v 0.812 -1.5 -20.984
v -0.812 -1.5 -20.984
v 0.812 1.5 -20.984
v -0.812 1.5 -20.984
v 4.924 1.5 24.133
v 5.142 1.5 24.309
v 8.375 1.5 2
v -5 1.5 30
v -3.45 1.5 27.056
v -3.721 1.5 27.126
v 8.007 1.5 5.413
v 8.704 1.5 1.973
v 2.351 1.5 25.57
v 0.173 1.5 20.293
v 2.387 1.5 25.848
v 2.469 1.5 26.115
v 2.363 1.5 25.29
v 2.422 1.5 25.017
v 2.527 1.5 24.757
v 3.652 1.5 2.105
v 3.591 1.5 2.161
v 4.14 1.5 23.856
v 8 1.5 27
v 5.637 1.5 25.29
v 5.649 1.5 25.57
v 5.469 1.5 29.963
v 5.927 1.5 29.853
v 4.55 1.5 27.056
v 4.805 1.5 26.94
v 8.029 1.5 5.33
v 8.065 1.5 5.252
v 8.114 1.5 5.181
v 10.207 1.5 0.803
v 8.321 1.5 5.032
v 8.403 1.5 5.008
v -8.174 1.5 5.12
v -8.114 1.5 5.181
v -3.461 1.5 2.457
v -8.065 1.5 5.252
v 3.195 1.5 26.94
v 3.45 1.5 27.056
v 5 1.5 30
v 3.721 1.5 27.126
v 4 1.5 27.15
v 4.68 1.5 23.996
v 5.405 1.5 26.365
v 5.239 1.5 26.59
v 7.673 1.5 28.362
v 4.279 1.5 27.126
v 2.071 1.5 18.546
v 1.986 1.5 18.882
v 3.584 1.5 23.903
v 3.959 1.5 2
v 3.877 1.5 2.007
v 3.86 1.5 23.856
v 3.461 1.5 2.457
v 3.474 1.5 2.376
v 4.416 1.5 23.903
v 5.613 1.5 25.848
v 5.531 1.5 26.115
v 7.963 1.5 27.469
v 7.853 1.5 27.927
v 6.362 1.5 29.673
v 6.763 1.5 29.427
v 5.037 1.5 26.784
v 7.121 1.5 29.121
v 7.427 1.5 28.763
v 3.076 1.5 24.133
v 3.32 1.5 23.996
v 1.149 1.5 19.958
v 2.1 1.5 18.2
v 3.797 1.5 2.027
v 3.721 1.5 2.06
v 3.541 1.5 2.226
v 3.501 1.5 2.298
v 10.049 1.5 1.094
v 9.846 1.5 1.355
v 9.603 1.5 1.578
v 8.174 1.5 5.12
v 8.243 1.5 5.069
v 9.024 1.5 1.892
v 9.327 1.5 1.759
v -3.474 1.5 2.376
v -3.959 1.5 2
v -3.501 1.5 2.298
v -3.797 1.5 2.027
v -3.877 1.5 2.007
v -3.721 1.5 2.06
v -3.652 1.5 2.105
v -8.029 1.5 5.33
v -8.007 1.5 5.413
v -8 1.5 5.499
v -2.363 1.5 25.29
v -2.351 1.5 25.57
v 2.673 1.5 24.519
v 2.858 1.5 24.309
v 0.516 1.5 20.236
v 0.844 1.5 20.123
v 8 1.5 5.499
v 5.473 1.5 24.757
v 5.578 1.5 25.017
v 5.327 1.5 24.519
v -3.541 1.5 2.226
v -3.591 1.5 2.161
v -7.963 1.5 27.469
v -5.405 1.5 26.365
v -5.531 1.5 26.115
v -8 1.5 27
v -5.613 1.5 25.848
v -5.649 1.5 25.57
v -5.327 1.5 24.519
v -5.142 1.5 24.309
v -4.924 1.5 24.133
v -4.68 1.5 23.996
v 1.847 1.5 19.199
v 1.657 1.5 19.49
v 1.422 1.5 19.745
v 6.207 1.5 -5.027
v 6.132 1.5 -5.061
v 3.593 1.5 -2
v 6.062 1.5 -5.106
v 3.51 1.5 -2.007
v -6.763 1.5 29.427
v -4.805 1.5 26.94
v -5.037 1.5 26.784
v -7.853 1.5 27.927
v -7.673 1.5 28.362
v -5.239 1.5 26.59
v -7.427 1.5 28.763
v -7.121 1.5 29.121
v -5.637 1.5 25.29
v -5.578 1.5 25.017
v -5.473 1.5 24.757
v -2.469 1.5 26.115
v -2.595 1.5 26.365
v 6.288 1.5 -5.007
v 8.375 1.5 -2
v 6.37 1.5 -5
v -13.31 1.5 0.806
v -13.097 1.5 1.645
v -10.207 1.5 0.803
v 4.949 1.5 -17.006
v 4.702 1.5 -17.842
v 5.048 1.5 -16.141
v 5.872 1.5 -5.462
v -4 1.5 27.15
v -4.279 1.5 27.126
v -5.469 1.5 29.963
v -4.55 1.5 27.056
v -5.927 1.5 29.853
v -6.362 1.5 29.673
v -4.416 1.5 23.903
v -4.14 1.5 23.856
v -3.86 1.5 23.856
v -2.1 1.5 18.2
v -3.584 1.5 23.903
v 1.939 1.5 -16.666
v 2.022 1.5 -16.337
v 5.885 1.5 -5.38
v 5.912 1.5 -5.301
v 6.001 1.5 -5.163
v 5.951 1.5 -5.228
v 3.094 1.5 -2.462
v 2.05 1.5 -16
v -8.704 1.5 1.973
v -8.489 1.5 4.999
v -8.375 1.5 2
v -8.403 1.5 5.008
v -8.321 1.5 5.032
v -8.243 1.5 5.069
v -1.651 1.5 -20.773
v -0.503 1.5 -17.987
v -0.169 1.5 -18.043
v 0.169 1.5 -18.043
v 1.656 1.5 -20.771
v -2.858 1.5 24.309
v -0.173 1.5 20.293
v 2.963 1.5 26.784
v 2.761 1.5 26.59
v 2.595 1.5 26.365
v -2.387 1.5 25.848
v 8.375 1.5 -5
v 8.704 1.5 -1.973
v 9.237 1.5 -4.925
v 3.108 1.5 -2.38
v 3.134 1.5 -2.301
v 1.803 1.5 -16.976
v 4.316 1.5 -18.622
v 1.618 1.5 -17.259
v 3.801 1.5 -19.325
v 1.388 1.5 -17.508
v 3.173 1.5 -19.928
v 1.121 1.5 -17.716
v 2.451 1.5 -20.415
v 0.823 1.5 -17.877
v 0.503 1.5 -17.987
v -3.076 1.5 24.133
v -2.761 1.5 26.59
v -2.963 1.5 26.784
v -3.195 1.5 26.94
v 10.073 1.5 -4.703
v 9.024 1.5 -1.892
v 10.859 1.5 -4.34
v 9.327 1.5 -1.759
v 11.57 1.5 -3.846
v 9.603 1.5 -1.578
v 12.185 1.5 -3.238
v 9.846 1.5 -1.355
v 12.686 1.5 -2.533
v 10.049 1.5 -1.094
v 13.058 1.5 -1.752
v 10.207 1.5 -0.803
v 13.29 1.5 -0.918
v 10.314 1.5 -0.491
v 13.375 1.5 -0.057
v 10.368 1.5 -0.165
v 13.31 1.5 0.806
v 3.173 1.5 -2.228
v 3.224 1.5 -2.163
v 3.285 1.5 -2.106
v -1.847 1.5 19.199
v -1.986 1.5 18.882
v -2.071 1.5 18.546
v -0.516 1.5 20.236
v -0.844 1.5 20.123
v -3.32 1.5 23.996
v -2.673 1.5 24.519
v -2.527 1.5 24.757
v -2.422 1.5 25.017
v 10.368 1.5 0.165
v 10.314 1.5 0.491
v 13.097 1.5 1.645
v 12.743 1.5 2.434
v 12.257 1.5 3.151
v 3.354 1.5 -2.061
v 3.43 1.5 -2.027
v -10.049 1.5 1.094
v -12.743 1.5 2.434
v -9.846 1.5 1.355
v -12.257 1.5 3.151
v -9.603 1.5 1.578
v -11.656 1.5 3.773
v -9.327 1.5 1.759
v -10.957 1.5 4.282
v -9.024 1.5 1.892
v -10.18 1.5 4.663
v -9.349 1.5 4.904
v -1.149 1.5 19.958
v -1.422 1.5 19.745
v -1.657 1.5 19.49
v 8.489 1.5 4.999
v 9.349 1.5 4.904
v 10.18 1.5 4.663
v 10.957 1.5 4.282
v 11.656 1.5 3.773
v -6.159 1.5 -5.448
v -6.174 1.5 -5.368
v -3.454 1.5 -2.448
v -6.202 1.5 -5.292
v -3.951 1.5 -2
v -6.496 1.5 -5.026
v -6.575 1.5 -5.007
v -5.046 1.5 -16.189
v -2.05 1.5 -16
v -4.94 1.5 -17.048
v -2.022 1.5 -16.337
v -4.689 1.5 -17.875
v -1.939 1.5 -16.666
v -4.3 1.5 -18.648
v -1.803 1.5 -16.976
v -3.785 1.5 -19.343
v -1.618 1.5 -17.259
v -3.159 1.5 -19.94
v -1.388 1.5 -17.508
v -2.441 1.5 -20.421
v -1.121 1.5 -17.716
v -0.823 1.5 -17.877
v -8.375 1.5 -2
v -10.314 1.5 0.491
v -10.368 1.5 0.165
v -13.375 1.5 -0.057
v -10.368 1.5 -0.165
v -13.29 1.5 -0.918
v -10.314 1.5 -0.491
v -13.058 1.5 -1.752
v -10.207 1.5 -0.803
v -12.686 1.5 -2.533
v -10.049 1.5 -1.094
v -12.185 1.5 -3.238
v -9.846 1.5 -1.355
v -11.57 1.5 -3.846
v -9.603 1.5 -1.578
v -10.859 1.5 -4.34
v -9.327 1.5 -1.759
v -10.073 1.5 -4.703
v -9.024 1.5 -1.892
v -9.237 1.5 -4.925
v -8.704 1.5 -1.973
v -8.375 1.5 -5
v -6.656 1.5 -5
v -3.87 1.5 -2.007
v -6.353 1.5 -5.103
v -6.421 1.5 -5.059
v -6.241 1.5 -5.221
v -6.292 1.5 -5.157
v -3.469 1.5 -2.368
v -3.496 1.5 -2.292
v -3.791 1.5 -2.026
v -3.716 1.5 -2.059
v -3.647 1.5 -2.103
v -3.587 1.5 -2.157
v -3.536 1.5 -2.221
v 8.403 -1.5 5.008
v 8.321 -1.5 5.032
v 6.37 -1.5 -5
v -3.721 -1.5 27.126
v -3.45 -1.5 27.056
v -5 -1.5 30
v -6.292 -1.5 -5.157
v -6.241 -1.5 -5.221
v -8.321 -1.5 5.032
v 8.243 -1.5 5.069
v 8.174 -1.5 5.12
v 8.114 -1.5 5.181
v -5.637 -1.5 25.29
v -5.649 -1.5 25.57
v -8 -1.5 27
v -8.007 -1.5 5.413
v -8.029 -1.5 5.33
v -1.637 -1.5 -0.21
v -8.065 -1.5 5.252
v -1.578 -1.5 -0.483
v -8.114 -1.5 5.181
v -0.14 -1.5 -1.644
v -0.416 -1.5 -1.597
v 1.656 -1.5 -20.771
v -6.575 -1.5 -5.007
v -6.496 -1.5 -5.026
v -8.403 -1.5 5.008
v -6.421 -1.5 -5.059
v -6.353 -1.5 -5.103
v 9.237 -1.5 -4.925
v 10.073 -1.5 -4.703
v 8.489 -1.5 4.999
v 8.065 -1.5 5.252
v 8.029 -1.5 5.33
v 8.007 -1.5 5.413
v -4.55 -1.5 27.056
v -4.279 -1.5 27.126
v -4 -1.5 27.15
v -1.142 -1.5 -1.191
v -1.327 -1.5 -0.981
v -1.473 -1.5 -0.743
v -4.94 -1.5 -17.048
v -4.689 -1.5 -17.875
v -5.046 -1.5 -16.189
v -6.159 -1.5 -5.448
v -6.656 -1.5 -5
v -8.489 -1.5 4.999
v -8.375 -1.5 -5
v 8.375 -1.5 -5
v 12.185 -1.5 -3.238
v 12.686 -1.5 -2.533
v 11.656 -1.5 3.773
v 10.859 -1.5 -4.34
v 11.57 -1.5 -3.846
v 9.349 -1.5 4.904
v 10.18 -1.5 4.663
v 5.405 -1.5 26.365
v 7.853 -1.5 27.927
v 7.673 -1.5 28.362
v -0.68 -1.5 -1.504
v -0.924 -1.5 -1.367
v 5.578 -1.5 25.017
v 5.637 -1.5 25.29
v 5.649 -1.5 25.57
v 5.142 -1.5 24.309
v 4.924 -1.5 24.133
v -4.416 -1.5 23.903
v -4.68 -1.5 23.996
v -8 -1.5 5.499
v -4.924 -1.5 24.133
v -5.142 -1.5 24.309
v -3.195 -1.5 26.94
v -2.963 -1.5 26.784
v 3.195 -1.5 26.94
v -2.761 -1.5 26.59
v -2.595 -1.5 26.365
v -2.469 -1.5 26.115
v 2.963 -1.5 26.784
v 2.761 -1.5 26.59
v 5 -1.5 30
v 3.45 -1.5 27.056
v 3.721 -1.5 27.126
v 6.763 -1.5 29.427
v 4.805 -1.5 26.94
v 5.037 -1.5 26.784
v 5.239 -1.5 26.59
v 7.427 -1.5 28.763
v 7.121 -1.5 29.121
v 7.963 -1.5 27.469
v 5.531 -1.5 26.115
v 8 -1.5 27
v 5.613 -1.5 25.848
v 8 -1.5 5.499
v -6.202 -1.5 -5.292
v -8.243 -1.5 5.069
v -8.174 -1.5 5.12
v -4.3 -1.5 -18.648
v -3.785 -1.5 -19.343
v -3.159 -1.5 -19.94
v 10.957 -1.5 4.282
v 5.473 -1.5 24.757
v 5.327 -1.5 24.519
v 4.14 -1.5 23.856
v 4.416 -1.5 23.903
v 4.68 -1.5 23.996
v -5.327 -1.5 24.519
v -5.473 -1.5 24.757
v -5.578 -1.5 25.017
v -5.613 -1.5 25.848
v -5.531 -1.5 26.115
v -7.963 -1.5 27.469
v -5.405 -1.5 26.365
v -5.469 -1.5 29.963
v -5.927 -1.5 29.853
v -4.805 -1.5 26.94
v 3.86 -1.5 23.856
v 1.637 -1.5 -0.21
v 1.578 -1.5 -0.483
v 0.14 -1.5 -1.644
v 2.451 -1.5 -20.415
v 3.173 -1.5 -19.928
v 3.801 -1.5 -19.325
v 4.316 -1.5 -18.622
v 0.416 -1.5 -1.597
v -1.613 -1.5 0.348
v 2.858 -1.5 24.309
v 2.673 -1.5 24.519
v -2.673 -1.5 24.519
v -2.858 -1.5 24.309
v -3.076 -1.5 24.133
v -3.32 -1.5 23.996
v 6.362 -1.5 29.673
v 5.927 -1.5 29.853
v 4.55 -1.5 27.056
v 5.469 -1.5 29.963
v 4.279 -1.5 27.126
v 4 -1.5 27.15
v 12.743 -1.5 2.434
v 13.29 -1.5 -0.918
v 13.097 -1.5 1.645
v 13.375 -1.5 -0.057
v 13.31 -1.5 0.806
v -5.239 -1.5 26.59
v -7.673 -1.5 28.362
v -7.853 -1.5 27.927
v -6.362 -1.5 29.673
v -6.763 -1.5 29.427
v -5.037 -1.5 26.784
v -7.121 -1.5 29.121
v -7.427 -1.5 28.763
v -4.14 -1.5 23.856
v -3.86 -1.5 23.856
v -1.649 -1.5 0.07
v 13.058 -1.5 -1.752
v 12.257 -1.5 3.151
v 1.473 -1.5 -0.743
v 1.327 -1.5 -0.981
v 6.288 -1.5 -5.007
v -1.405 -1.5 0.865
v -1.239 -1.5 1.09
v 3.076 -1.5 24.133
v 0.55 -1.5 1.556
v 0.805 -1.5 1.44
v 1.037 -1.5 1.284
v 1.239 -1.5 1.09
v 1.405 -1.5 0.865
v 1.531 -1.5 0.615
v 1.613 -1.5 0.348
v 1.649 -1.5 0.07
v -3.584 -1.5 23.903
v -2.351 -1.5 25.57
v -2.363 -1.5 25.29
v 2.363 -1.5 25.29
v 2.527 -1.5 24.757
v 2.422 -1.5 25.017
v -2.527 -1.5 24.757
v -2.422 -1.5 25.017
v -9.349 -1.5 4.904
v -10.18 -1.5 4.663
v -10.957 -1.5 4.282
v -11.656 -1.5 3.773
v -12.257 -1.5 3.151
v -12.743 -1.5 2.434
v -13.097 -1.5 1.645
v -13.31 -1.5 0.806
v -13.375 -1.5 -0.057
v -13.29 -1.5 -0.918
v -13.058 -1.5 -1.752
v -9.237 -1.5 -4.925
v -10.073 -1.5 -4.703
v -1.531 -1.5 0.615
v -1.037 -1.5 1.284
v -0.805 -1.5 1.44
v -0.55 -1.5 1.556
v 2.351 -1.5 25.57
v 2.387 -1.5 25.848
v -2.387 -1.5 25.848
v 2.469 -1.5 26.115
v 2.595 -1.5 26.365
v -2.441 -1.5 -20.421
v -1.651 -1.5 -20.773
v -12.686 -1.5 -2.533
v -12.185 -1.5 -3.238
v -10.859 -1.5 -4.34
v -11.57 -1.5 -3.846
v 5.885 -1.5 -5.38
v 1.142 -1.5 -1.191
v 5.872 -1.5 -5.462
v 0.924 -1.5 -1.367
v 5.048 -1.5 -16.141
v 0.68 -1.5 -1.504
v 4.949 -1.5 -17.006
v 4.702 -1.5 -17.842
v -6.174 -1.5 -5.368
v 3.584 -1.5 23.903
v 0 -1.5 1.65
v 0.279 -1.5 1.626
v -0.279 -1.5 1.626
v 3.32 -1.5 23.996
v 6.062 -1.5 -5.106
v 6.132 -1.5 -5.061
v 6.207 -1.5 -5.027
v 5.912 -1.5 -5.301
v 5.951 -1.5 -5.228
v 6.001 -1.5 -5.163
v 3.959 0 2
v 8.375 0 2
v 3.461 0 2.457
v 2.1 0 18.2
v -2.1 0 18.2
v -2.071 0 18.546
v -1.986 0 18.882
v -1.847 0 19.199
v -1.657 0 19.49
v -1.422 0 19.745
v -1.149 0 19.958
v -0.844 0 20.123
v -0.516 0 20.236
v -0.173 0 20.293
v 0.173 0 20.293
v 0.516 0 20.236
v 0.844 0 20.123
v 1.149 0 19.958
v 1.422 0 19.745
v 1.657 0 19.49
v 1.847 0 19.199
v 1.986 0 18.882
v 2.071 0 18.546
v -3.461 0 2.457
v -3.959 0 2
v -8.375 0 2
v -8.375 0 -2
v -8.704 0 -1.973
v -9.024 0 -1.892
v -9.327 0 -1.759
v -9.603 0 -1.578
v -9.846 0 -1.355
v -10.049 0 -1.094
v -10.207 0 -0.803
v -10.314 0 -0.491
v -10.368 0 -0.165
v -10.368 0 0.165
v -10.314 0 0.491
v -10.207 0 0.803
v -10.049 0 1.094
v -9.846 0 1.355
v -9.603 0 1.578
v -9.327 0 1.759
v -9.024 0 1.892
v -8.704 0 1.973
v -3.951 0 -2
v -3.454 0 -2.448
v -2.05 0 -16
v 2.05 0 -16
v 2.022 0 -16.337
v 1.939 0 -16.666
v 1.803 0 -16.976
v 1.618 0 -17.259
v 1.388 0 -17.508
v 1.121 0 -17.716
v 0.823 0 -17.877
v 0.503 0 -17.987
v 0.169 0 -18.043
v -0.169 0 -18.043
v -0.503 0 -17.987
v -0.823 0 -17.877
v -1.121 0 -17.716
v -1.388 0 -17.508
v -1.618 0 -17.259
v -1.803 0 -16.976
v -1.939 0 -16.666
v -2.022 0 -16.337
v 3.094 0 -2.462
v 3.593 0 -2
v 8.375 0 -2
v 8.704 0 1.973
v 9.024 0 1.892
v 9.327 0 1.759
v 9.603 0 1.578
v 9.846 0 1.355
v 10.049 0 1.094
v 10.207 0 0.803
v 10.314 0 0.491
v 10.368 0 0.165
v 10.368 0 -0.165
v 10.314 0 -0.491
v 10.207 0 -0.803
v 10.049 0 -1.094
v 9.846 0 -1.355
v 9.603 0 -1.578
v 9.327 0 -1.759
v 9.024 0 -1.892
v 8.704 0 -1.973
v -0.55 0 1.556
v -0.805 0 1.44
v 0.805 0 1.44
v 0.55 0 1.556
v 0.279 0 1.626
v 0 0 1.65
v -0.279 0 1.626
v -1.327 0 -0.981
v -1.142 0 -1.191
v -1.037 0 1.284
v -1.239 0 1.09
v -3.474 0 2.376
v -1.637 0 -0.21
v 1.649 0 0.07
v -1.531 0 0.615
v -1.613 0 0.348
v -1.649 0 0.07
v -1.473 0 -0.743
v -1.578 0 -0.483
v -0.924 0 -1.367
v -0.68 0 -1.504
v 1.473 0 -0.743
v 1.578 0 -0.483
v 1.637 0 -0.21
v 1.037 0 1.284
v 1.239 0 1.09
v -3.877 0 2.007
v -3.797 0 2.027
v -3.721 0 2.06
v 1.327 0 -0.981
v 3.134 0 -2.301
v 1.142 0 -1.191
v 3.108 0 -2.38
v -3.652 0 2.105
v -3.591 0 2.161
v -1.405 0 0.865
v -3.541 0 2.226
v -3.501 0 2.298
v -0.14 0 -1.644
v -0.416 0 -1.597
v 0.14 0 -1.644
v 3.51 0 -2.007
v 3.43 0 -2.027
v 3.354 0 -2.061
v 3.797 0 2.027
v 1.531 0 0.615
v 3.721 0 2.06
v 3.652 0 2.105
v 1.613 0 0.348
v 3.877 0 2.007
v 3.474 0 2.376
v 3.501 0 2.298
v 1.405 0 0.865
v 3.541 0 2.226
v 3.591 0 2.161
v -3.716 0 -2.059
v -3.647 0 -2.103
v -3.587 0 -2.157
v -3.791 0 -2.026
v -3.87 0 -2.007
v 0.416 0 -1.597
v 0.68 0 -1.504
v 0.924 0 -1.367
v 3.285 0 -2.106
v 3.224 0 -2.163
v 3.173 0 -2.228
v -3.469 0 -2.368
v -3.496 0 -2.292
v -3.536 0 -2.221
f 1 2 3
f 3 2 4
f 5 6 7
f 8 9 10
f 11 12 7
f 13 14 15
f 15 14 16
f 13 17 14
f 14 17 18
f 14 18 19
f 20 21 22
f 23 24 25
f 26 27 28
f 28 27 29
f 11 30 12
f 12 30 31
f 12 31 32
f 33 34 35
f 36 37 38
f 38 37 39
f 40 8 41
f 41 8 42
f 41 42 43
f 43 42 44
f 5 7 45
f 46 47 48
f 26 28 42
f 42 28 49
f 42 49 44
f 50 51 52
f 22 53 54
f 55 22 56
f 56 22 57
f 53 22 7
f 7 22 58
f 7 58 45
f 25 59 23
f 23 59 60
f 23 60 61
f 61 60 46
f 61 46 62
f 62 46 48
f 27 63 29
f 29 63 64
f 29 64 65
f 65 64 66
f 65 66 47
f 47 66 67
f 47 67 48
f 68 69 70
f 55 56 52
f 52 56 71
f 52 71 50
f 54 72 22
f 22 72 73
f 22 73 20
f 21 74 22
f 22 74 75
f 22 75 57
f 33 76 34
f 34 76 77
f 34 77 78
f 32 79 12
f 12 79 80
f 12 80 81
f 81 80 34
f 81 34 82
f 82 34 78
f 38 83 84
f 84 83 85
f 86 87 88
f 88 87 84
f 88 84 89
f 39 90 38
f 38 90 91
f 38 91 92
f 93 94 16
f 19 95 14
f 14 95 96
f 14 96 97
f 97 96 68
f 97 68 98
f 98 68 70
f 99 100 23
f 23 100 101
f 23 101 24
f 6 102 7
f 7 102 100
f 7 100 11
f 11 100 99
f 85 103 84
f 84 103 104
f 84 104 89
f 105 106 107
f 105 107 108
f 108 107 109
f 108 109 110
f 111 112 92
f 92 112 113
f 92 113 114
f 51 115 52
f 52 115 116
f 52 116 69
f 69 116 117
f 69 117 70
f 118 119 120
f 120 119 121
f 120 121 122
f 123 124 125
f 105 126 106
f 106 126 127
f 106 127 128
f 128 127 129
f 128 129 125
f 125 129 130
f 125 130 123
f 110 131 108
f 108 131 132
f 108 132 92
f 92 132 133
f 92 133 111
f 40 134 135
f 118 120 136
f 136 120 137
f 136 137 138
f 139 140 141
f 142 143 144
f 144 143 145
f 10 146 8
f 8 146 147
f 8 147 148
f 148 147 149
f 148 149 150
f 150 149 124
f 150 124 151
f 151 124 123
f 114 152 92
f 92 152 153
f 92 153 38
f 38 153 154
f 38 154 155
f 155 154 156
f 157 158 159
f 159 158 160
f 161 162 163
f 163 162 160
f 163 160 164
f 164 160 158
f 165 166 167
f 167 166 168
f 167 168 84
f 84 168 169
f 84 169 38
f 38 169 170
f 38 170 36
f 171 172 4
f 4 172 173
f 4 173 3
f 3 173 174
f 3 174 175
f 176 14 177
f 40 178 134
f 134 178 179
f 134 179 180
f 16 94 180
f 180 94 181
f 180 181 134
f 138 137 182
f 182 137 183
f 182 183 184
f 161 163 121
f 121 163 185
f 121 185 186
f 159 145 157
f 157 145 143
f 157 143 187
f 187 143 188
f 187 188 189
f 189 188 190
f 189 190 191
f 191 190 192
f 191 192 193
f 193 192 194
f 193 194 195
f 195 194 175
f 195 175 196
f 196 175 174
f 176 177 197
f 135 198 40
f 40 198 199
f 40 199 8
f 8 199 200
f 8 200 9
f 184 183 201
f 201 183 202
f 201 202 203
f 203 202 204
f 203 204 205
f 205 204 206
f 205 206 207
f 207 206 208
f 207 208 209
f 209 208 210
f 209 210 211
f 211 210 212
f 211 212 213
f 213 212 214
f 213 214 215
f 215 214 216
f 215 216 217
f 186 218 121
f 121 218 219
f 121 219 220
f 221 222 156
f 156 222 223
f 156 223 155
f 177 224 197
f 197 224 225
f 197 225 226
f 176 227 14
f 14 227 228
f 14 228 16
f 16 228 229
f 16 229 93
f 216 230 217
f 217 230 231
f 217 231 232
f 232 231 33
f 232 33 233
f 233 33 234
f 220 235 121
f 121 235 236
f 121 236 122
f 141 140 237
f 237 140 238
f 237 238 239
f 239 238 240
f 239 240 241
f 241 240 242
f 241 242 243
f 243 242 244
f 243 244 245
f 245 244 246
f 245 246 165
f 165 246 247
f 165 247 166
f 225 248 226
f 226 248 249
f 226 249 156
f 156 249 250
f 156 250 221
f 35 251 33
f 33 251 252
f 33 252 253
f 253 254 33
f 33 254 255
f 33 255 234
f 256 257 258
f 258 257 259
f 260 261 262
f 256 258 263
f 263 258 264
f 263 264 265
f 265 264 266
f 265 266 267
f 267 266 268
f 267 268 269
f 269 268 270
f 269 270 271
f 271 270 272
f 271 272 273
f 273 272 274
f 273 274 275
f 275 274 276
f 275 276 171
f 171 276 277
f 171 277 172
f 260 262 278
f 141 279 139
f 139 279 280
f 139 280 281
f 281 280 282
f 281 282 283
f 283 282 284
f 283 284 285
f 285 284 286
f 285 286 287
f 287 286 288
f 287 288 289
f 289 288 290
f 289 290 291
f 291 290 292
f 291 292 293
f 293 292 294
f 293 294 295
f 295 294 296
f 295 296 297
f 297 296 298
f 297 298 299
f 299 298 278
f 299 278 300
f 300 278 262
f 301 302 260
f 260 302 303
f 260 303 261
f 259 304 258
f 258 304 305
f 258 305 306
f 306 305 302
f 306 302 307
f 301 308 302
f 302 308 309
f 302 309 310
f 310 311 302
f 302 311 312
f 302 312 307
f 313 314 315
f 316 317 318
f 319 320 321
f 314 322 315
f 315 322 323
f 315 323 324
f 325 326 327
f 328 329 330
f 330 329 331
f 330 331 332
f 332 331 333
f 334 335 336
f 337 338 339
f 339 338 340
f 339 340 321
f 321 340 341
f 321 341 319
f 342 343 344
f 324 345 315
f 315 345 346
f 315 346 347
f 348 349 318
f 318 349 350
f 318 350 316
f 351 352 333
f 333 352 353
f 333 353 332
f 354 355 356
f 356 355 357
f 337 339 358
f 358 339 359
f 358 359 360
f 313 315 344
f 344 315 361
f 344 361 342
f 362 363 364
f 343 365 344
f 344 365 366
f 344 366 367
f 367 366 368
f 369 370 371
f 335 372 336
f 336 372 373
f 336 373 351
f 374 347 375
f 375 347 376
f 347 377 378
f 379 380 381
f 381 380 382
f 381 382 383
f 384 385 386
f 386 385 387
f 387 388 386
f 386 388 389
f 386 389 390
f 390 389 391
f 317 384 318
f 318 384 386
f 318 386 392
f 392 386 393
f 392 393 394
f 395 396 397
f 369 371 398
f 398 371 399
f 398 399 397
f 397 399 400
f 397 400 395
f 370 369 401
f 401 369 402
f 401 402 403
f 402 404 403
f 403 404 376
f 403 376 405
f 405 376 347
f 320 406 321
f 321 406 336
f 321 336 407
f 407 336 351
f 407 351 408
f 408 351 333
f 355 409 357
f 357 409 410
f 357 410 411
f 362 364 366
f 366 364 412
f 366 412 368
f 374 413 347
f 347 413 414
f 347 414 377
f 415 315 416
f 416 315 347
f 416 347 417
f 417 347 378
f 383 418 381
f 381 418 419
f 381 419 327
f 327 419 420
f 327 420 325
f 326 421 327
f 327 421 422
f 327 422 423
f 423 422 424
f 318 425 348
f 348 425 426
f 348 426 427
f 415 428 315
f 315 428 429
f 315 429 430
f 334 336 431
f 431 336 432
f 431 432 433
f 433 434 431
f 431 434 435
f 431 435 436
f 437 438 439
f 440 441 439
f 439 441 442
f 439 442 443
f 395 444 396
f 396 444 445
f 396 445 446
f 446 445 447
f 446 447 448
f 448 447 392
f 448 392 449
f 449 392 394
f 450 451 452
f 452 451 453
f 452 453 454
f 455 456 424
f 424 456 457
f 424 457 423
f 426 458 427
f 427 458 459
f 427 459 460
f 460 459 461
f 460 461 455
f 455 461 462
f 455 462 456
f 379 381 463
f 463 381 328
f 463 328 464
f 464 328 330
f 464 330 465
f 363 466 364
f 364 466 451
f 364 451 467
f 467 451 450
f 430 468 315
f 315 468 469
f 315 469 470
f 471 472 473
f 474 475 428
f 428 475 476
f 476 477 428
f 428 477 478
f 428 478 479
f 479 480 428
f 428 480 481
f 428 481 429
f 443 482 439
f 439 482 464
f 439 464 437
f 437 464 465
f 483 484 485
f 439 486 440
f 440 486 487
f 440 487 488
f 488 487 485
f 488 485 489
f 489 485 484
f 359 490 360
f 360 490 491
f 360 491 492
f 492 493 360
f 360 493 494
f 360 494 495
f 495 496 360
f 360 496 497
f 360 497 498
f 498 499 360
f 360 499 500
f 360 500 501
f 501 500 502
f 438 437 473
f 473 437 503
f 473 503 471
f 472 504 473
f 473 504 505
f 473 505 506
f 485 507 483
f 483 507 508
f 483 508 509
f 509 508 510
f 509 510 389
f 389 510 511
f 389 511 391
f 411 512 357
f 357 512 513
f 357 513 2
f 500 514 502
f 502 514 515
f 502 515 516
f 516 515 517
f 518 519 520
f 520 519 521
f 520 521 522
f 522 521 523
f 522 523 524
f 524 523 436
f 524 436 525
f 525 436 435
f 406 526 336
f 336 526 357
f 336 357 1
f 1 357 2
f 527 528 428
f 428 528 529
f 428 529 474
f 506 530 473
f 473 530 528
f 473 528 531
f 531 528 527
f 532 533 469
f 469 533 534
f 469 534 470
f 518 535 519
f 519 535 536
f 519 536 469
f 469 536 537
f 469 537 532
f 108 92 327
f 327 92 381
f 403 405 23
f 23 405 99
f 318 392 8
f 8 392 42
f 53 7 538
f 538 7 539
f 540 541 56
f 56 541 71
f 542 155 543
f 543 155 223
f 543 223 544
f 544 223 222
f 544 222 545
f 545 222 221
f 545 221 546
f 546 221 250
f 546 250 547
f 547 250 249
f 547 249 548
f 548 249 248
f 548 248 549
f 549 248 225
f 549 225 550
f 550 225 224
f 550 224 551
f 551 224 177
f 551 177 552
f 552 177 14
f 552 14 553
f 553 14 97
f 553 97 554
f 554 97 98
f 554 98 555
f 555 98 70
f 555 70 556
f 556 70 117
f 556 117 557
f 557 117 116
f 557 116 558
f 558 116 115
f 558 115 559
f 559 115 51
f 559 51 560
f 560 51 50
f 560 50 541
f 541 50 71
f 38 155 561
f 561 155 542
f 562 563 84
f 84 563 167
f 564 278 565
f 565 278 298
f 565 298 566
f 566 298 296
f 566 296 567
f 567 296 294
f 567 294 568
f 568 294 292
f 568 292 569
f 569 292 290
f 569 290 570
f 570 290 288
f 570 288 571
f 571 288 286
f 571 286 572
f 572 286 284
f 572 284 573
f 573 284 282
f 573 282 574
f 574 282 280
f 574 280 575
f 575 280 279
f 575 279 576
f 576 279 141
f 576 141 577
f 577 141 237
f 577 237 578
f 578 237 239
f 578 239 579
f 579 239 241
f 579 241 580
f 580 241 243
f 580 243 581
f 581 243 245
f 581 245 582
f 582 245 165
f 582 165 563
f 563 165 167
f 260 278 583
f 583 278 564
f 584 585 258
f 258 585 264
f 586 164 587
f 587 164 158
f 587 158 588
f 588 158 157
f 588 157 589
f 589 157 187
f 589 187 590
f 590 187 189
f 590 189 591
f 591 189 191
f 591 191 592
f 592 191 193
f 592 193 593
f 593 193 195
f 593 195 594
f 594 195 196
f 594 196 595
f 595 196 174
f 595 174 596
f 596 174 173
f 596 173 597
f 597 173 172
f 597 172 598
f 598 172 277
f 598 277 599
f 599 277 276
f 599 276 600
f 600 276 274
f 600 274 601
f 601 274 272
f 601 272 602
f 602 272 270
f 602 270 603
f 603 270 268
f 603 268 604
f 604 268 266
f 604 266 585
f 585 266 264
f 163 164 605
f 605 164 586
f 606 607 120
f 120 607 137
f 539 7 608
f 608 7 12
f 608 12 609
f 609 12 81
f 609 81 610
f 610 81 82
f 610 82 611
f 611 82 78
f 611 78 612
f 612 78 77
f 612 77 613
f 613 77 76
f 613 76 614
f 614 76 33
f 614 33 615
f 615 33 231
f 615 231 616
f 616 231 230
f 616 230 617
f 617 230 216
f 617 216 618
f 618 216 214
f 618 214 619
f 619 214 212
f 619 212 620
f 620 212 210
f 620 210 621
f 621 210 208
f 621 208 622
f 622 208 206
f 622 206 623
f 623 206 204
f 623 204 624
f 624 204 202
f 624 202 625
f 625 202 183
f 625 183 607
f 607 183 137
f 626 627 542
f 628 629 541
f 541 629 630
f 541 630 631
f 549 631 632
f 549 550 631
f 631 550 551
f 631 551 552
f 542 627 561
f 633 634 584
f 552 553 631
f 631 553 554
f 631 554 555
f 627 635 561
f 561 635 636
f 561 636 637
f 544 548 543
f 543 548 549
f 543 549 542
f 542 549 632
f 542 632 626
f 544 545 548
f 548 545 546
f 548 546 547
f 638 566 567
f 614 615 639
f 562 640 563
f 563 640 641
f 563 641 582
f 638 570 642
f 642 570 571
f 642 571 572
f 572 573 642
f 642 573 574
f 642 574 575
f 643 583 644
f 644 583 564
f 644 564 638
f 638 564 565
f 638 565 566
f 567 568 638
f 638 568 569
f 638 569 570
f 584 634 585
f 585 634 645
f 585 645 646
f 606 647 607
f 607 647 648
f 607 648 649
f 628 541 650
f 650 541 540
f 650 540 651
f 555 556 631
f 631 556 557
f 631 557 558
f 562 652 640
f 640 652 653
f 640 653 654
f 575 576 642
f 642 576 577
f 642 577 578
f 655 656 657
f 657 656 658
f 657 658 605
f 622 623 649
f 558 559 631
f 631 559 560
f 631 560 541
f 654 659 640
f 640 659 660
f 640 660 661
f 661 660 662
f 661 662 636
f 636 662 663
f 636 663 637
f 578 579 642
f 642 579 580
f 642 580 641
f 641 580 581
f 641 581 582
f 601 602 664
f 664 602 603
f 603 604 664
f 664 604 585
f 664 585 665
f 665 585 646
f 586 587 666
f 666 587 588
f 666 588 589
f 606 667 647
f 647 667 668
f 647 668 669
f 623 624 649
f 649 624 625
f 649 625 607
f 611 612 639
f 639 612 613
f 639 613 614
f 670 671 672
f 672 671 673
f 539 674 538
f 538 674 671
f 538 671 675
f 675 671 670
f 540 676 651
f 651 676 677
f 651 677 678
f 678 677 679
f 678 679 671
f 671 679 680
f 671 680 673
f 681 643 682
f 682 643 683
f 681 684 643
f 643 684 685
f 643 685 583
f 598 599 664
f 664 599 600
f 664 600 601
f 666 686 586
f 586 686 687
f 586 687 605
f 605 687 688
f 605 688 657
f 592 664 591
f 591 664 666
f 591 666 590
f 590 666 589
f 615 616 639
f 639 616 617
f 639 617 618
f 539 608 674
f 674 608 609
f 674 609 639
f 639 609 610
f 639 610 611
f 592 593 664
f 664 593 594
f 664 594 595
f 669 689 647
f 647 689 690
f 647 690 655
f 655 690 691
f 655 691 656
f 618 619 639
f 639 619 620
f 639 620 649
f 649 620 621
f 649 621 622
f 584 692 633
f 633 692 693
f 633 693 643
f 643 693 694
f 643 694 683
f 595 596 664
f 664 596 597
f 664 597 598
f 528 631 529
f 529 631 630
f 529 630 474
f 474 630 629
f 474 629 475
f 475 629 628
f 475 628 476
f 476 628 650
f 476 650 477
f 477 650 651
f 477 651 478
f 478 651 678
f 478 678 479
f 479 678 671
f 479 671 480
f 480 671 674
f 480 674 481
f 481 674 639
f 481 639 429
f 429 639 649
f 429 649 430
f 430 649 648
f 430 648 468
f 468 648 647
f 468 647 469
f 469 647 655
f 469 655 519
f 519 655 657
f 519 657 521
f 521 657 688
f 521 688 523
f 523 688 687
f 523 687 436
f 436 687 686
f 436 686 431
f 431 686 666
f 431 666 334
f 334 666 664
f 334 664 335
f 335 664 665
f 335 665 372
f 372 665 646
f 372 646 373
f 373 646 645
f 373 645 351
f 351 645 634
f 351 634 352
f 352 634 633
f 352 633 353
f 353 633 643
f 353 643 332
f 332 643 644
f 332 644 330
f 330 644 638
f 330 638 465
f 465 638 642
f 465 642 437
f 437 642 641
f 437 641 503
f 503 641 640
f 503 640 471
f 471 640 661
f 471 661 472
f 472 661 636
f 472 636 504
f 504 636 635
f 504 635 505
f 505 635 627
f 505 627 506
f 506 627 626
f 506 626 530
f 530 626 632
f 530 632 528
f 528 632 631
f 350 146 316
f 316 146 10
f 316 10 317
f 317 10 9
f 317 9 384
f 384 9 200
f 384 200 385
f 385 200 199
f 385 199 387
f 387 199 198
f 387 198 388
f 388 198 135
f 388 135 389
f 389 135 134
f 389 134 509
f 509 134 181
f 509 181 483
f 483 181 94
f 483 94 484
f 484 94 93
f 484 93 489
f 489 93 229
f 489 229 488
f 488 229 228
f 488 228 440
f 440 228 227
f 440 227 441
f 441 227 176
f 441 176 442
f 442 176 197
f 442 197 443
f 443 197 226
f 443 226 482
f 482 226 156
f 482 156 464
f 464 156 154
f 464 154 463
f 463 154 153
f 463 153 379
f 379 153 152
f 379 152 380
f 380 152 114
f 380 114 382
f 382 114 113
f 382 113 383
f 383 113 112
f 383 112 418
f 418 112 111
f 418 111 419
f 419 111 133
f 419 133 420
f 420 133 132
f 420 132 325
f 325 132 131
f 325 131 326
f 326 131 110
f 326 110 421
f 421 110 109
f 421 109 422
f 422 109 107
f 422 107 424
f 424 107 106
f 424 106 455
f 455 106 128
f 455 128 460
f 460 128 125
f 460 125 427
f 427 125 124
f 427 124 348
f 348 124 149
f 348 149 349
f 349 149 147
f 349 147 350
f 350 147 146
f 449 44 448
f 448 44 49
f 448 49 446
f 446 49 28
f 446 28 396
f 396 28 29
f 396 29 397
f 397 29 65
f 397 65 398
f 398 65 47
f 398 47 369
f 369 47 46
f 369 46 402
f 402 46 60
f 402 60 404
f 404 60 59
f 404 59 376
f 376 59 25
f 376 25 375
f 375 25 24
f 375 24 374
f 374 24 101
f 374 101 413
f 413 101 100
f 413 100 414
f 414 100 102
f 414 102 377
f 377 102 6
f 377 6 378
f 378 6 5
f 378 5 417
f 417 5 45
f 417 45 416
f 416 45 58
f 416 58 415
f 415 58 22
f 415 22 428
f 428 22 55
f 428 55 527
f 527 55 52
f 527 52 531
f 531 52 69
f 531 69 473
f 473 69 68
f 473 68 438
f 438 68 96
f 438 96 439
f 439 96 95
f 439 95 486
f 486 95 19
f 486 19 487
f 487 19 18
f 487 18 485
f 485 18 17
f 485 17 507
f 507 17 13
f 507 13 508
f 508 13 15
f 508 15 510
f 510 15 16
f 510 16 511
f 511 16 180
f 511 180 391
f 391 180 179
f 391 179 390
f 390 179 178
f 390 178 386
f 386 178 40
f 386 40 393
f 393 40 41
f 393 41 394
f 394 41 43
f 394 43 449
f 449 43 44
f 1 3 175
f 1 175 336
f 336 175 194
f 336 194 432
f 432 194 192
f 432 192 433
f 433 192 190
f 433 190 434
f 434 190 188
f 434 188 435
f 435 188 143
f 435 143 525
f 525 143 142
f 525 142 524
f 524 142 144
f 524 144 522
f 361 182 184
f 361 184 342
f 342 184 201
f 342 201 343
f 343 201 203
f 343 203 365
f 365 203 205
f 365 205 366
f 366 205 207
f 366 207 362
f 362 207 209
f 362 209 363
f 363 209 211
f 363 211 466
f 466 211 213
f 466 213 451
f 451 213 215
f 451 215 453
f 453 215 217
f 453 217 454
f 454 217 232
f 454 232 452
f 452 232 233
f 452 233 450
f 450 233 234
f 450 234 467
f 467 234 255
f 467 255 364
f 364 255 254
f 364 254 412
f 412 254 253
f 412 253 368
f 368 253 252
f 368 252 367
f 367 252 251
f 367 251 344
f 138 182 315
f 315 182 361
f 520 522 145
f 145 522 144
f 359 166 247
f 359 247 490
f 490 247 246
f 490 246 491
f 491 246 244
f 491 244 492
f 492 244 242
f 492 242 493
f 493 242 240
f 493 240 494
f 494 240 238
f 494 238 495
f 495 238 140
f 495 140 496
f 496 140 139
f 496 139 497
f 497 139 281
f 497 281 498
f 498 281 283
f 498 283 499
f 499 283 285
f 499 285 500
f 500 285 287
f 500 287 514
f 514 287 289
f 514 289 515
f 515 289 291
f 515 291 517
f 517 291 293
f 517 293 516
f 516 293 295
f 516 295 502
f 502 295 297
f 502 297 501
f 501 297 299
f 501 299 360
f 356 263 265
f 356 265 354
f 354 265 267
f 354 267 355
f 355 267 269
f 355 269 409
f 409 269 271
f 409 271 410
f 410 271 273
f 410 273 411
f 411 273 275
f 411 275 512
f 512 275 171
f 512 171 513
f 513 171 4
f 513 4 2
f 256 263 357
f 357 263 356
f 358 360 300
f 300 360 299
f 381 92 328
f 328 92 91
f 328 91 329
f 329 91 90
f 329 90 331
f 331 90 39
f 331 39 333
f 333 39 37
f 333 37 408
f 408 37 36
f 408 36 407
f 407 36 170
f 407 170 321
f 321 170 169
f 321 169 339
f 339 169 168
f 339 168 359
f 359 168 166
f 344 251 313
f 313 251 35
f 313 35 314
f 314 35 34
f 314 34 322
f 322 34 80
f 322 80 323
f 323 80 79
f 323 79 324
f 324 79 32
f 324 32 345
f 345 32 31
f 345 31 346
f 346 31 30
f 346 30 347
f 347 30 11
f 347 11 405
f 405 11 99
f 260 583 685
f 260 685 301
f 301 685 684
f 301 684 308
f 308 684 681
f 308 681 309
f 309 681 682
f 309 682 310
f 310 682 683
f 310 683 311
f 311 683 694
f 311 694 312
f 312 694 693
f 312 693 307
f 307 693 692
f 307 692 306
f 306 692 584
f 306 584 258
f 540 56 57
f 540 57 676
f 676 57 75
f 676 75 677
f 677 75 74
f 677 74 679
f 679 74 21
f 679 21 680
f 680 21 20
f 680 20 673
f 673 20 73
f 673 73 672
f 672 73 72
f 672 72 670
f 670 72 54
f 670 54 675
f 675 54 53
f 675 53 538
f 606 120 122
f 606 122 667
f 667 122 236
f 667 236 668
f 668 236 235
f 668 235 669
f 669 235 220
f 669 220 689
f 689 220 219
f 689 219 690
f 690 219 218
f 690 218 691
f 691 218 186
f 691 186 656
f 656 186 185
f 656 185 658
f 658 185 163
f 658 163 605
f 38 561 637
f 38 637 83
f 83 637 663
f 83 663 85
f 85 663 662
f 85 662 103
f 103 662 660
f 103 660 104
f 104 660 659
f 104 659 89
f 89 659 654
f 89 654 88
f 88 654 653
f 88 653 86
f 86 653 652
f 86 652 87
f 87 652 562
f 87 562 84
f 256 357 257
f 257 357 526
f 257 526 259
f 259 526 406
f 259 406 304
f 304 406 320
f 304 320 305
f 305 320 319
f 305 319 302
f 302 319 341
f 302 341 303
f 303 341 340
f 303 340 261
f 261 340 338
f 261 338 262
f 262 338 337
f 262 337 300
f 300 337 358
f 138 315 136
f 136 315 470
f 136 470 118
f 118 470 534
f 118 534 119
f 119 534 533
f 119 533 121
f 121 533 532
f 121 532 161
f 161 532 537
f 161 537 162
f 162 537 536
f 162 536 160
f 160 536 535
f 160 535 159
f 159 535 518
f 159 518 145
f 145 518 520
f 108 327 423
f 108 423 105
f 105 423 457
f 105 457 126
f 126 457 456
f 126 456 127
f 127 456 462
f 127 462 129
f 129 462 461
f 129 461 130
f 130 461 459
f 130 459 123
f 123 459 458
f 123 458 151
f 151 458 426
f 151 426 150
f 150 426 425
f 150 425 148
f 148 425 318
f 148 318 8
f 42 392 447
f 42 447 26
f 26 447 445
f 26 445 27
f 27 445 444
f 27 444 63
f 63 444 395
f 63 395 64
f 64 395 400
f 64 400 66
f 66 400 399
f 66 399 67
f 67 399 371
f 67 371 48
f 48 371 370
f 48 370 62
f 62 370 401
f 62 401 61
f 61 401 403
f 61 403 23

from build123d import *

# Parameters (mm, degrees)
SKETCH1_R               = 21
BOSS_EXTRUDE1_DEPTH     = 1.5
SKETCH5_W               = 16
SKETCH5_H               = 30
BOSS_EXTRUDE2_DEPTH     = 1.5
CUT_EXTRUDE1_DEPTH      = 1.5
CUT_EXTRUDE4_REACH      = 38.65
SKETCH4_R               = 1.65
CUT_EXTRUDE5_REACH      = 38.742
SKETCH6_R               = 1.65
CUT_EXTRUDE6_DEPTH      = 37.650375169
CUT_EXTRUDE6_DEPTH_BACK = 37.650375169
FILLET3_R               = 0.5
FILLET4_R               = 3


with BuildPart() as part:
    # Sketch1 → Boss-Extrude1 (new, symmetric)
    with BuildSketch(Plane(origin=(0, 0, 0), x_dir=(1, 0, 0), z_dir=(0, 1, 0))):
        with Locations(Location((0, 0, 0), (0, 0, 270))):
            Circle(SKETCH1_R)
    extrude(amount=BOSS_EXTRUDE1_DEPTH, both=True)

    # Sketch5 → Boss-Extrude2 (add, symmetric)
    with BuildSketch(Plane(origin=(0, 0, 0), x_dir=(1, 0, 0), z_dir=(0, 1, 0))):
        with Locations((0, -15)):
            Rectangle(SKETCH5_W, SKETCH5_H)
    extrude(amount=BOSS_EXTRUDE2_DEPTH, both=True)

    # Sketch2 → Cut-Extrude1 (cut)
    with BuildSketch(Plane(origin=(0, 1.5, 0), x_dir=(1, 0, 0), z_dir=(0, 1, 0))):
        with BuildLine():
            Line((-3.5, -2), (-2.1, -18.2))
            ThreePointArc((-2.1, -18.2), (0, -20.3), (2.1, -18.2))
            Line((2.1, -18.2), (3.5, -2))
            Line((3.5, -2), (8.375, -2))
            ThreePointArc((8.375, -2), (10.375, 0), (8.375, 2))
            Line((8.375, 2), (3.13, 2))
            Line((3.13, 2), (2.05, 16))
            ThreePointArc((2.05, 16), (0, 18.05), (-2.05, 16))
            Line((-2.05, 16), (-3.5, 2))
            Line((-3.5, 2), (-8.375, 2))
            ThreePointArc((-8.375, 2), (-10.375, 0), (-8.375, -2))
            Line((-8.375, -2), (-3.5, -2))
        make_face()
    extrude(amount=-CUT_EXTRUDE1_DEPTH, mode=Mode.SUBTRACT)

    # Sketch4 → Cut-Extrude4 (cut, up to next)
    with BuildSketch(Plane(origin=(0, 0, 0), x_dir=(1, 0, 0), z_dir=(0, 1, 0)), mode=Mode.PRIVATE) as cut_extrude4_sk1:
        with Locations(Location((0, 0, 0), (0, 0, 270))):
            Circle(SKETCH4_R)
    cut_extrude4_tool1 = extrude(cut_extrude4_sk1.sketch, amount=-CUT_EXTRUDE4_REACH, mode=Mode.PRIVATE) & part.part
    add(cut_extrude4_tool1.solids().sort_by_distance((0, 0, 0))[0], mode=Mode.SUBTRACT)

    # Sketch6 → Cut-Extrude5 (cut, up to next)
    with BuildSketch(Plane(origin=(0, 1.5, 0), x_dir=(1, 0, 0), z_dir=(0, 1, 0)), mode=Mode.PRIVATE) as cut_extrude5_sk1:
        with Locations(Location((4, -25.5, 0), (0, 0, 270))):
            Circle(SKETCH6_R)
    cut_extrude5_tool1 = extrude(cut_extrude5_sk1.sketch, amount=-CUT_EXTRUDE5_REACH, mode=Mode.PRIVATE) & part.part
    # Sketch6 → Cut-Extrude5 (cut, up to next)
    with BuildSketch(Plane(origin=(0, 1.5, 0), x_dir=(1, 0, 0), z_dir=(0, 1, 0)), mode=Mode.PRIVATE) as cut_extrude5_sk2:
        with Locations(Location((-4, -25.5, 0), (0, 0, 270))):
            Circle(SKETCH6_R)
    cut_extrude5_tool2 = extrude(cut_extrude5_sk2.sketch, amount=-CUT_EXTRUDE5_REACH, mode=Mode.PRIVATE) & part.part
    add(cut_extrude5_tool1.solids().sort_by_distance((4, 1.5, 25.5))[0], mode=Mode.SUBTRACT)
    add(cut_extrude5_tool2.solids().sort_by_distance((-4, 1.5, 25.5))[0], mode=Mode.SUBTRACT)

    # Sketch7 → Cut-Extrude6 (cut, two sides: drawn at the far end of the back side and taken through both)
    with BuildSketch(Plane(origin=(0, 0, 0), x_dir=(1, 0, 0), z_dir=(0, 1, 0)).offset(-CUT_EXTRUDE6_DEPTH_BACK)):
        with BuildLine():
            ThreePointArc((-0.811963461, 20.984296875), (-20.675312002, 3.678515137), (-8, -19.416487839))
            Line((-8, -19.416487839), (-8, -5))
            Line((-8, -5), (-8.375, -5))
            ThreePointArc((-8.375, -5), (-13.375, 0), (-8.375, 5))
            Line((-8.375, 5), (-6.205333354, 5))
            Line((-6.205333354, 5), (-5.046456013, 16.189160538))
            ThreePointArc((-5.046456013, 16.189160538), (-3.785314096, 19.342737979), (-0.811963461, 20.984296875))
        make_face()
        with BuildLine():
            ThreePointArc((8, -19.416487839), (20.675312002, 3.678515137), (0.811963461, 20.984296875))
            ThreePointArc((0.811963461, 20.984296875), (3.801185846, 19.324678355), (5.048028391, 16.141100531))
            Line((5.048028391, 16.141100531), (5.907484718, 5))
            Line((5.907484718, 5), (8.375, 5))
            ThreePointArc((8.375, 5), (13.375, 0), (8.375, -5))
            Line((8.375, -5), (8, -5))
            Line((8, -5), (8, -19.416487839))
        make_face()
    extrude(amount=CUT_EXTRUDE6_DEPTH + CUT_EXTRUDE6_DEPTH_BACK, mode=Mode.SUBTRACT)

    # Fillet3
    fillet3_edges = [part.edges().sort_by_distance(p)[0] for p in [
        (-8, 0, 5),
        (8, 0, 5),
        (-3.5, 0.75, -2),
        (3.5, 0.75, 2),
        (3.13, 0.75, -2),
        (-3.5, 0.75, 2),
        (-6.205333354, 0, -5),
        (5.907484718, 0, -5),
    ]]
    fillet(fillet3_edges, radius=FILLET3_R)

    # Fillet4
    fillet4_edges = [part.edges().sort_by_distance(p)[0] for p in [
        (8, 0, 30),
        (-8, 0, 30),
    ]]
    fillet(fillet4_edges, radius=FILLET4_R)


solid = part.part
